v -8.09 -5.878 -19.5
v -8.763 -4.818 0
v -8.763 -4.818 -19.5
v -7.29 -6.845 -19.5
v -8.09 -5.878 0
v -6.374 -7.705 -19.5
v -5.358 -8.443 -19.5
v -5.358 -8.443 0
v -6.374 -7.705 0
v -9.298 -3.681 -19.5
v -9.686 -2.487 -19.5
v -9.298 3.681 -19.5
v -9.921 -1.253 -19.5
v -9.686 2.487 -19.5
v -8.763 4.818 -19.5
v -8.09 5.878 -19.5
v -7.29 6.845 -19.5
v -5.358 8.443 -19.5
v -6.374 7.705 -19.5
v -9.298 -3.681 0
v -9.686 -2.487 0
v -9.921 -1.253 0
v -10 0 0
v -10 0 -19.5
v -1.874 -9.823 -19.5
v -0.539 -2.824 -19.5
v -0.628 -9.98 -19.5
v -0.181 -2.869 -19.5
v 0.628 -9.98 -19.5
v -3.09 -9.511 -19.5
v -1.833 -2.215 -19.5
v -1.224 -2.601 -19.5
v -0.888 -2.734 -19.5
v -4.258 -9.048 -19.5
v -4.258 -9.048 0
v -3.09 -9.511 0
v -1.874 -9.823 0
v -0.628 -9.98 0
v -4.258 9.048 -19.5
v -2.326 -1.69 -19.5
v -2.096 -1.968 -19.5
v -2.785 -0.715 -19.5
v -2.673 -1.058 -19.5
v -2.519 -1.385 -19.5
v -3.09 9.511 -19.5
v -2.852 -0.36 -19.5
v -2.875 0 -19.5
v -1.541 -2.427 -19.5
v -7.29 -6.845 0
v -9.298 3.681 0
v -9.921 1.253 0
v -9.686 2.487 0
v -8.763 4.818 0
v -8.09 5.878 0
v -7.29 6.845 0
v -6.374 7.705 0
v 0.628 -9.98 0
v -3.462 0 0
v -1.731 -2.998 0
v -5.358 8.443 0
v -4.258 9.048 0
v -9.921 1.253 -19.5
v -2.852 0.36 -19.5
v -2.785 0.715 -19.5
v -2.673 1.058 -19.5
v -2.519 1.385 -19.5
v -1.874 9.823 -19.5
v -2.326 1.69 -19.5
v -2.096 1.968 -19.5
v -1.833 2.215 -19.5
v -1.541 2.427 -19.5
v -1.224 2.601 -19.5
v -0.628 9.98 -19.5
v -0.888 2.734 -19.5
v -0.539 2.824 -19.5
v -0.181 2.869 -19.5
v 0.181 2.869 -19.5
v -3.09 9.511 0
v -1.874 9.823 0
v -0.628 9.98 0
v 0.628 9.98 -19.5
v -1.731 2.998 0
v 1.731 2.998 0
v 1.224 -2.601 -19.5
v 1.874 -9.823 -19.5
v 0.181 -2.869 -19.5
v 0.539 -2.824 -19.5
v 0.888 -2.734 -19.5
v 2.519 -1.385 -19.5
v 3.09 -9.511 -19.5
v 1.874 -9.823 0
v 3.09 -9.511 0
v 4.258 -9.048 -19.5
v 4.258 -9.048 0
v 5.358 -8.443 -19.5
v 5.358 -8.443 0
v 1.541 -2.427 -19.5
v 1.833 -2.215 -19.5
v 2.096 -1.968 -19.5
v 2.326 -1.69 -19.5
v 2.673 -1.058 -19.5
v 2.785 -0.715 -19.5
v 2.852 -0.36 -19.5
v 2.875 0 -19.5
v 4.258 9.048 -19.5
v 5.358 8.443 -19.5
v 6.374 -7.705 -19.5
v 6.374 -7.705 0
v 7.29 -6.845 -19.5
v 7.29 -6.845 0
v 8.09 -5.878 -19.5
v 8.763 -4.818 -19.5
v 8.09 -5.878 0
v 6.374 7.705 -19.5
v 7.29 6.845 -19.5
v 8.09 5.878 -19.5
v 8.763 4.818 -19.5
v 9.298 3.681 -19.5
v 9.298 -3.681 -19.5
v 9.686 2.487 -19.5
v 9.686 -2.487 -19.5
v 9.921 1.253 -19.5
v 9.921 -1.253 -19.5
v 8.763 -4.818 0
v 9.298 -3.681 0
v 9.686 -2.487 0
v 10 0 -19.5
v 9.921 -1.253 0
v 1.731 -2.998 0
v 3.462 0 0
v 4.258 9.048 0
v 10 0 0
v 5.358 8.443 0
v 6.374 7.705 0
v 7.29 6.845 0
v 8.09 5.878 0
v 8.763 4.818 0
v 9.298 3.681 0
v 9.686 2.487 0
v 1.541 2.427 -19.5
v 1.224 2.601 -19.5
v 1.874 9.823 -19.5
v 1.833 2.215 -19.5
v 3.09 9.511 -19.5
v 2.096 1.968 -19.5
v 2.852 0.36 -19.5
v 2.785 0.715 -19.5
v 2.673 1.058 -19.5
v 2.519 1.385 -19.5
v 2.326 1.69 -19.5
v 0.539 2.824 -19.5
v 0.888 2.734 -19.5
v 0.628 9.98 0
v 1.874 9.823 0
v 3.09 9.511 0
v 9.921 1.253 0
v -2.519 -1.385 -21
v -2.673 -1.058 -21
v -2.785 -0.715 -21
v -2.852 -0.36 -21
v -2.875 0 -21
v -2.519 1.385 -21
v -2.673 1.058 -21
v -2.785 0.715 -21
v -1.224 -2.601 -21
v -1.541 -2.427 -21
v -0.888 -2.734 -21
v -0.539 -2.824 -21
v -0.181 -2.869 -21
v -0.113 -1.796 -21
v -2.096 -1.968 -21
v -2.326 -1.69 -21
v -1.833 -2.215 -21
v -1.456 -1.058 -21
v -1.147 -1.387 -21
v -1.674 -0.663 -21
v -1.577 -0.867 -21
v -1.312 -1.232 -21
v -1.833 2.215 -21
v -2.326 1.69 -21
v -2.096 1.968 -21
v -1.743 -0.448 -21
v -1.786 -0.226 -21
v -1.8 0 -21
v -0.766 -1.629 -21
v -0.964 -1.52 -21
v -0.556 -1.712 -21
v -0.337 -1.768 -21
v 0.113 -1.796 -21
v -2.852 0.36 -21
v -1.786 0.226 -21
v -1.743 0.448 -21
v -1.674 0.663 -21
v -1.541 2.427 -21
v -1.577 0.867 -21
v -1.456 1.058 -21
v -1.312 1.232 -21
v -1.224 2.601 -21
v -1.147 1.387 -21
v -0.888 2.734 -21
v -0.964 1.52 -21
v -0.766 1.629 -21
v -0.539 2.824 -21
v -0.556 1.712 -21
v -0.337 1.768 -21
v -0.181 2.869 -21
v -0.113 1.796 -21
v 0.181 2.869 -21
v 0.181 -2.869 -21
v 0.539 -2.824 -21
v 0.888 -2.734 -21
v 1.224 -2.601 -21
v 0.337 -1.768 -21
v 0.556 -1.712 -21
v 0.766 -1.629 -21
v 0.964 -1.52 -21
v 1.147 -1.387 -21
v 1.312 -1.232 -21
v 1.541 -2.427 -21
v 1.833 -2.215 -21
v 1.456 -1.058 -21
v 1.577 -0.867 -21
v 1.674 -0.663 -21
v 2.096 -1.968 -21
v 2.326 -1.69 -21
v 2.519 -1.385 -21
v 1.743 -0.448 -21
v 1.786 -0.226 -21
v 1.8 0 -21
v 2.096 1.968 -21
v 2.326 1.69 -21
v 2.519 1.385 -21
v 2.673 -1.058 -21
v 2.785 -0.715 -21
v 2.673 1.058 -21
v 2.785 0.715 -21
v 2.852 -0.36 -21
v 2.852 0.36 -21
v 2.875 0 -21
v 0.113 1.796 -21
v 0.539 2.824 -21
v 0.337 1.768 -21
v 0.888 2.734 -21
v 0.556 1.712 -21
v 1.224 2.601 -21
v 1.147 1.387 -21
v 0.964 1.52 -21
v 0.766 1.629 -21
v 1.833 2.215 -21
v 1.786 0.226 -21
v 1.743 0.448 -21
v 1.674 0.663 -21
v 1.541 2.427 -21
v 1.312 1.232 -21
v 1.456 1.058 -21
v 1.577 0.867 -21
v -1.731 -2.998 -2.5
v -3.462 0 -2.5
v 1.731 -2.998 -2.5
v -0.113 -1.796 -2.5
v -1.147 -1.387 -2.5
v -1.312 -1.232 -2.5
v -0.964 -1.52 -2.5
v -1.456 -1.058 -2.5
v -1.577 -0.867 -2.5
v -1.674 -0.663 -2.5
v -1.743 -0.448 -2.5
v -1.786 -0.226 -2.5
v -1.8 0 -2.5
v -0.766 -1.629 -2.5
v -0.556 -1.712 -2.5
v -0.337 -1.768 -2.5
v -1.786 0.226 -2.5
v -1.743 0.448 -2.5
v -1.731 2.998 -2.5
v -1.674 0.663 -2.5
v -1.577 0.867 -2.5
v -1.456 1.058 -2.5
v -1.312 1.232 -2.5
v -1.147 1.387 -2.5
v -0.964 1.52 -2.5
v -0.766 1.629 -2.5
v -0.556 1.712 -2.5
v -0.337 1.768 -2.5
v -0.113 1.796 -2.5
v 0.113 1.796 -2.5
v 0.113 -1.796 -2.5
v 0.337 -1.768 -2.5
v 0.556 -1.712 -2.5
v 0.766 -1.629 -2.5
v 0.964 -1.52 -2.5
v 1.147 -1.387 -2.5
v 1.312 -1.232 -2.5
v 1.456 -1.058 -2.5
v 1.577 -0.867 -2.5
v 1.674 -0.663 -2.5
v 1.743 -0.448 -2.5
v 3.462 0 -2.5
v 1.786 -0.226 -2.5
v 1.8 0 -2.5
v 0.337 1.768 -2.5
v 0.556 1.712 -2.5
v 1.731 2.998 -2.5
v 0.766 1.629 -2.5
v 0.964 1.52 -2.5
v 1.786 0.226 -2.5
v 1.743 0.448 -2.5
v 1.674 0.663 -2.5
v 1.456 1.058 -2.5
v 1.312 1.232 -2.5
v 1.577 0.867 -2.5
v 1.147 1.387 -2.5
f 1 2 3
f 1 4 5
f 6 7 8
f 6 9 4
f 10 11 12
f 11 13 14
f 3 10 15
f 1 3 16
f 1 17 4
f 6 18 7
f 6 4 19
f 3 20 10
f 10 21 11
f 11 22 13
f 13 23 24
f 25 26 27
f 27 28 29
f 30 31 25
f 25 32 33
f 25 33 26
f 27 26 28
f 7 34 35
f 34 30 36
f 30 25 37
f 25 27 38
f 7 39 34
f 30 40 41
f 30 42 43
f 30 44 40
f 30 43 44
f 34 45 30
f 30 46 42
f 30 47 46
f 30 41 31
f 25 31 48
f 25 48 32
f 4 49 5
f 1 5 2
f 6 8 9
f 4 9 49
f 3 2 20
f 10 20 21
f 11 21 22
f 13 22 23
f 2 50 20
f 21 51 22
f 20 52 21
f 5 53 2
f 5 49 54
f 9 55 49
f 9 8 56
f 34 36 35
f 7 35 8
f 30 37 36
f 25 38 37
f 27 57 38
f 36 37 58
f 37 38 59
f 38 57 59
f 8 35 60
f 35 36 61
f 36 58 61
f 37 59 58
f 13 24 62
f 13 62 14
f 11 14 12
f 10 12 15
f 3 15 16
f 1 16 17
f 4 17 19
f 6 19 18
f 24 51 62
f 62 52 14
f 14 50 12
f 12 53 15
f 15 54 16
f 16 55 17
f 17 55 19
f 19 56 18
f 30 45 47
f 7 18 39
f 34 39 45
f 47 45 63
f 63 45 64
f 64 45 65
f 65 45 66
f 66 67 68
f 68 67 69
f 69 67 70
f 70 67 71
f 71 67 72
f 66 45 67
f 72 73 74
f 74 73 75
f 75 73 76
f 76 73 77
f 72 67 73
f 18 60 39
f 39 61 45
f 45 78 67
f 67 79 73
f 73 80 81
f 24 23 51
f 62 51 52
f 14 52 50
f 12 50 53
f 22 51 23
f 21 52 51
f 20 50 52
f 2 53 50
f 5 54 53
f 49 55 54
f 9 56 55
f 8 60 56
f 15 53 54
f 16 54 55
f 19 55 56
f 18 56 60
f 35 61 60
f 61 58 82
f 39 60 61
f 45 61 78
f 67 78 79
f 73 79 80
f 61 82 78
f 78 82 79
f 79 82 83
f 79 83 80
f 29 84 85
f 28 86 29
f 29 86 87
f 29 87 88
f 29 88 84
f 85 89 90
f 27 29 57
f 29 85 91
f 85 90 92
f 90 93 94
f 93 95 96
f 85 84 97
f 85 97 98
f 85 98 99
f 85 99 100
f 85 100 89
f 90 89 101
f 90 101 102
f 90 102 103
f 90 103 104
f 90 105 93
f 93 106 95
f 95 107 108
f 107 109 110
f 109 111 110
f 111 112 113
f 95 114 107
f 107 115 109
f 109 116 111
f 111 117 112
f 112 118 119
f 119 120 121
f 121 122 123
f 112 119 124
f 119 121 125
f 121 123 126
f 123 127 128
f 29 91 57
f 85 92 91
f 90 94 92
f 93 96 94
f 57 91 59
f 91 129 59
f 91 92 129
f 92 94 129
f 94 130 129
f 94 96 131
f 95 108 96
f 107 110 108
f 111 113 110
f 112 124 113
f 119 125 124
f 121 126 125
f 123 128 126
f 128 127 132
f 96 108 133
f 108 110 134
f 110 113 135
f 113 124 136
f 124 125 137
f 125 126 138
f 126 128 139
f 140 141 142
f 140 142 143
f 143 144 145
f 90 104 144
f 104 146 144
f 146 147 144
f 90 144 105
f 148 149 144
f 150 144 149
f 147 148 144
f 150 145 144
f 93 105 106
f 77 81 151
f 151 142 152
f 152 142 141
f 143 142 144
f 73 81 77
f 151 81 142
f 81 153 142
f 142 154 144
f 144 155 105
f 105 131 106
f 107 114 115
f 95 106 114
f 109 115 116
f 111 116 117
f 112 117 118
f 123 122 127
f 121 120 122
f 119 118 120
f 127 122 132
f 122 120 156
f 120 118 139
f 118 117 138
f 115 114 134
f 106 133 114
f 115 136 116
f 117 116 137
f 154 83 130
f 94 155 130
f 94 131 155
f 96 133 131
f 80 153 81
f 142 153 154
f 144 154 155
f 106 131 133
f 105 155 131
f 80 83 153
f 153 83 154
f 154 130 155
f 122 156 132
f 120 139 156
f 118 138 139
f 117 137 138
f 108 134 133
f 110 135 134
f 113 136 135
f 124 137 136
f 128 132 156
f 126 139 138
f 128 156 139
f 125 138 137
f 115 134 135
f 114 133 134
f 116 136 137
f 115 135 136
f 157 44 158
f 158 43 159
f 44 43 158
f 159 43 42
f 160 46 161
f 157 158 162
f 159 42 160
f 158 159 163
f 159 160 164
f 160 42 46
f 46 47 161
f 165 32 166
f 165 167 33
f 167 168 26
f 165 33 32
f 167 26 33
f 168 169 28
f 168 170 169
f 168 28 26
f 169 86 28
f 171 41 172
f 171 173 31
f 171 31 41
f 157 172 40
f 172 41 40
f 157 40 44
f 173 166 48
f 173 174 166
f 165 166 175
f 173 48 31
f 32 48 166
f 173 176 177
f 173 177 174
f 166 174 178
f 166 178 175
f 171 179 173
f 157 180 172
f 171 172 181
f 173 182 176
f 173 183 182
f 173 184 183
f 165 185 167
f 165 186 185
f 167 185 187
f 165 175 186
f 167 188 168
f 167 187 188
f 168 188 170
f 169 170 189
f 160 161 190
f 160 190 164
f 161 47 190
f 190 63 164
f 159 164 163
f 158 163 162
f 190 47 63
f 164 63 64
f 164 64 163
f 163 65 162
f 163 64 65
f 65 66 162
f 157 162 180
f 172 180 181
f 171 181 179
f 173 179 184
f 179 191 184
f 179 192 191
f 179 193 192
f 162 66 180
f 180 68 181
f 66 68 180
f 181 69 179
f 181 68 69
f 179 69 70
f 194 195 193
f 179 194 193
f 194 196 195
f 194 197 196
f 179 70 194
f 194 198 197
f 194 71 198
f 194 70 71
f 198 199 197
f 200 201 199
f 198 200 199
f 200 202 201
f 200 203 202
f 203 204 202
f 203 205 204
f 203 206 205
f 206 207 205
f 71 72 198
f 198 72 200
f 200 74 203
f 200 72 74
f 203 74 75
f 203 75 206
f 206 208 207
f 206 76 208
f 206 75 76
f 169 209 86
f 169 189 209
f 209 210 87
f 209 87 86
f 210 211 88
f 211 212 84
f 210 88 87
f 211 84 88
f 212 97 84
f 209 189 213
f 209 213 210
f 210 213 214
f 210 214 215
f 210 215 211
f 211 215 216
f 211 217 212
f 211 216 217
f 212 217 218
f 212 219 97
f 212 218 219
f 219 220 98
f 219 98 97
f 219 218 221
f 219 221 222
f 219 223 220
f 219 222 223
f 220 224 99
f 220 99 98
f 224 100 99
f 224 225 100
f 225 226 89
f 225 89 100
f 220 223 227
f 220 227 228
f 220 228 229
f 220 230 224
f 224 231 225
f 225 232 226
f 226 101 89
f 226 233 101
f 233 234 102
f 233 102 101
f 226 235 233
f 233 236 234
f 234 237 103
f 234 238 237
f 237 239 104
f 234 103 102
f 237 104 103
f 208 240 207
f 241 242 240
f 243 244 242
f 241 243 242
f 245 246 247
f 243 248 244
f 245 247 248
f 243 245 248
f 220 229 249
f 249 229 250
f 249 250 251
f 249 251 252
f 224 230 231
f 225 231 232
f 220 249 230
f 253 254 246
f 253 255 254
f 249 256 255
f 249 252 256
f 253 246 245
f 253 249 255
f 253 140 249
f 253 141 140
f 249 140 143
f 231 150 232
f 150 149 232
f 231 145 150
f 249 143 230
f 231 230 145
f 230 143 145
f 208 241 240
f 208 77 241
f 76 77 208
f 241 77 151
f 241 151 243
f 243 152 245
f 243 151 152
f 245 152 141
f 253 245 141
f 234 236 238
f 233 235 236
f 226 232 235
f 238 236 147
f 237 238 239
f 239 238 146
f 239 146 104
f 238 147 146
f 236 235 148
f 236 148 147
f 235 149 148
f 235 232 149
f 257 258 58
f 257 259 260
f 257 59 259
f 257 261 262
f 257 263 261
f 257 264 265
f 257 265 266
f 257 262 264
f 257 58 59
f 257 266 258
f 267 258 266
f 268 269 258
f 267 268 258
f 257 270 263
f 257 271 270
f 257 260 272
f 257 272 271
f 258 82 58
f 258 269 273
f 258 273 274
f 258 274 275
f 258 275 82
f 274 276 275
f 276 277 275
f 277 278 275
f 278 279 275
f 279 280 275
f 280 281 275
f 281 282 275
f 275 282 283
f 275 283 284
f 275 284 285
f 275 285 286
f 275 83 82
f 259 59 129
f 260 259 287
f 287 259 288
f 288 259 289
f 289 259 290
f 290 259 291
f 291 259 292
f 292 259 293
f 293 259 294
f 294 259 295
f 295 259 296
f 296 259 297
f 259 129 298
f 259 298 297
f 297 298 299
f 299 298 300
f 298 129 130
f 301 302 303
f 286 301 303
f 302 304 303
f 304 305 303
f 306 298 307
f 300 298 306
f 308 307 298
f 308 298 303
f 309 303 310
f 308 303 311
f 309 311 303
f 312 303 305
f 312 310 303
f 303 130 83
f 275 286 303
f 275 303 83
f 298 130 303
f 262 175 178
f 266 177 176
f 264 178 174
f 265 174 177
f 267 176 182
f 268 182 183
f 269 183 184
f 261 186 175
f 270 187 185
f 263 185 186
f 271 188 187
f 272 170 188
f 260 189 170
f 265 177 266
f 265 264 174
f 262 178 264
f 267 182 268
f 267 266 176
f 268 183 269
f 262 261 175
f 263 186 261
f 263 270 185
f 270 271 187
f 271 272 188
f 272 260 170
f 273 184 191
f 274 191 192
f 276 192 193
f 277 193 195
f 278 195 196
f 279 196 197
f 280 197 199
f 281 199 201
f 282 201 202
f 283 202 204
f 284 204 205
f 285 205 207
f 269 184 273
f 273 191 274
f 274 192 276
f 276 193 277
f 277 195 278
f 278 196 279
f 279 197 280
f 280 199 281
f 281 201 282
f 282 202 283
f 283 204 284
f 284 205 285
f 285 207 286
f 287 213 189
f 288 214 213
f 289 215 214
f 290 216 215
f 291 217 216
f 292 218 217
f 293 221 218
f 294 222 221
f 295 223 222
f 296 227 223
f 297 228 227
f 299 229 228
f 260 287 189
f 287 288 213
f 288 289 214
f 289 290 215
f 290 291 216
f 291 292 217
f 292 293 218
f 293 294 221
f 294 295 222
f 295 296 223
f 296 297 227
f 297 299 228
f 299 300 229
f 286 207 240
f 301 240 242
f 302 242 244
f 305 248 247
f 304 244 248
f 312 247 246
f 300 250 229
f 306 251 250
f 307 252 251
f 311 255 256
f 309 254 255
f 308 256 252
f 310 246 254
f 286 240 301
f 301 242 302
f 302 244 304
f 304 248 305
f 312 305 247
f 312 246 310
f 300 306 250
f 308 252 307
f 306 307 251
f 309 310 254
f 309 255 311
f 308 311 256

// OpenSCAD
$fn = 50;


difference() {
	union() {
		translate(v = [0, 0, -19.5000000000]) {
			cylinder(h = 19.5000000000, r = 10.0000000000);
		}
		#translate(v = [0, 0, -21.0000000000]) {
			cylinder(h = 21, r = 2.8750000000);
		}
	}
	union() {
		translate(v = [0, 0, 0]) {
			rotate(a = [0, 0, 0]) {
				difference() {
					union() {
						translate(v = [0, 0, -2.5000000000]) {
							linear_extrude(height = 2.5000000000) {
								polygon(points = [[3.4620000000, 0.0000000000], [1.7310000000, 2.9981799479], [-1.7310000000, 2.9981799479], [-3.4620000000, 0.0000000000], [-1.7310000000, -2.9981799479], [1.7310000000, -2.9981799479]]);
							}
						}
					}
					union();
				}
			}
		}
		#translate(v = [0, 0, -100.0000000000]) {
			cylinder(h = 200, r = 1.8000000000);
		}
	}
}
